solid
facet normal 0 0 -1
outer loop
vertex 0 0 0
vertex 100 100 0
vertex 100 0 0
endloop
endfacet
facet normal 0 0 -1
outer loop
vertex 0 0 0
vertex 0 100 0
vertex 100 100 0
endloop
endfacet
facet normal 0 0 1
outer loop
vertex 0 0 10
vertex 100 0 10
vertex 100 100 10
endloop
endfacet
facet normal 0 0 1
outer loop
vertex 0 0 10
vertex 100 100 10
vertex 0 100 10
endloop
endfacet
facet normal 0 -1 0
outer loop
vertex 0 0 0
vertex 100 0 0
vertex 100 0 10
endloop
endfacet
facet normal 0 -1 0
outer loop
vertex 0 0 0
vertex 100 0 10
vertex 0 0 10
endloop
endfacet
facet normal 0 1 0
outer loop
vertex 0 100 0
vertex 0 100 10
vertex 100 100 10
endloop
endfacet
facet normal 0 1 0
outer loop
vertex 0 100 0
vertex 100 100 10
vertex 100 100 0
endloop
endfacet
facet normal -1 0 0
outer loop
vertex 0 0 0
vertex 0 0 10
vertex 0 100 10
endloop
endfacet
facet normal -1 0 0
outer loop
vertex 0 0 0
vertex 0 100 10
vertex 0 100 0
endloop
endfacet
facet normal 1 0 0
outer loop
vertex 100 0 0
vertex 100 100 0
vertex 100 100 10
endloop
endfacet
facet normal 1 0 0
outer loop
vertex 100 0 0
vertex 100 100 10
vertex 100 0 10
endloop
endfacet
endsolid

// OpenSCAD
// Parametric test plate
width = 100;   // mm
depth = 100;   // mm
height = 10;   // mm

cube([width, depth, height], center=false);
